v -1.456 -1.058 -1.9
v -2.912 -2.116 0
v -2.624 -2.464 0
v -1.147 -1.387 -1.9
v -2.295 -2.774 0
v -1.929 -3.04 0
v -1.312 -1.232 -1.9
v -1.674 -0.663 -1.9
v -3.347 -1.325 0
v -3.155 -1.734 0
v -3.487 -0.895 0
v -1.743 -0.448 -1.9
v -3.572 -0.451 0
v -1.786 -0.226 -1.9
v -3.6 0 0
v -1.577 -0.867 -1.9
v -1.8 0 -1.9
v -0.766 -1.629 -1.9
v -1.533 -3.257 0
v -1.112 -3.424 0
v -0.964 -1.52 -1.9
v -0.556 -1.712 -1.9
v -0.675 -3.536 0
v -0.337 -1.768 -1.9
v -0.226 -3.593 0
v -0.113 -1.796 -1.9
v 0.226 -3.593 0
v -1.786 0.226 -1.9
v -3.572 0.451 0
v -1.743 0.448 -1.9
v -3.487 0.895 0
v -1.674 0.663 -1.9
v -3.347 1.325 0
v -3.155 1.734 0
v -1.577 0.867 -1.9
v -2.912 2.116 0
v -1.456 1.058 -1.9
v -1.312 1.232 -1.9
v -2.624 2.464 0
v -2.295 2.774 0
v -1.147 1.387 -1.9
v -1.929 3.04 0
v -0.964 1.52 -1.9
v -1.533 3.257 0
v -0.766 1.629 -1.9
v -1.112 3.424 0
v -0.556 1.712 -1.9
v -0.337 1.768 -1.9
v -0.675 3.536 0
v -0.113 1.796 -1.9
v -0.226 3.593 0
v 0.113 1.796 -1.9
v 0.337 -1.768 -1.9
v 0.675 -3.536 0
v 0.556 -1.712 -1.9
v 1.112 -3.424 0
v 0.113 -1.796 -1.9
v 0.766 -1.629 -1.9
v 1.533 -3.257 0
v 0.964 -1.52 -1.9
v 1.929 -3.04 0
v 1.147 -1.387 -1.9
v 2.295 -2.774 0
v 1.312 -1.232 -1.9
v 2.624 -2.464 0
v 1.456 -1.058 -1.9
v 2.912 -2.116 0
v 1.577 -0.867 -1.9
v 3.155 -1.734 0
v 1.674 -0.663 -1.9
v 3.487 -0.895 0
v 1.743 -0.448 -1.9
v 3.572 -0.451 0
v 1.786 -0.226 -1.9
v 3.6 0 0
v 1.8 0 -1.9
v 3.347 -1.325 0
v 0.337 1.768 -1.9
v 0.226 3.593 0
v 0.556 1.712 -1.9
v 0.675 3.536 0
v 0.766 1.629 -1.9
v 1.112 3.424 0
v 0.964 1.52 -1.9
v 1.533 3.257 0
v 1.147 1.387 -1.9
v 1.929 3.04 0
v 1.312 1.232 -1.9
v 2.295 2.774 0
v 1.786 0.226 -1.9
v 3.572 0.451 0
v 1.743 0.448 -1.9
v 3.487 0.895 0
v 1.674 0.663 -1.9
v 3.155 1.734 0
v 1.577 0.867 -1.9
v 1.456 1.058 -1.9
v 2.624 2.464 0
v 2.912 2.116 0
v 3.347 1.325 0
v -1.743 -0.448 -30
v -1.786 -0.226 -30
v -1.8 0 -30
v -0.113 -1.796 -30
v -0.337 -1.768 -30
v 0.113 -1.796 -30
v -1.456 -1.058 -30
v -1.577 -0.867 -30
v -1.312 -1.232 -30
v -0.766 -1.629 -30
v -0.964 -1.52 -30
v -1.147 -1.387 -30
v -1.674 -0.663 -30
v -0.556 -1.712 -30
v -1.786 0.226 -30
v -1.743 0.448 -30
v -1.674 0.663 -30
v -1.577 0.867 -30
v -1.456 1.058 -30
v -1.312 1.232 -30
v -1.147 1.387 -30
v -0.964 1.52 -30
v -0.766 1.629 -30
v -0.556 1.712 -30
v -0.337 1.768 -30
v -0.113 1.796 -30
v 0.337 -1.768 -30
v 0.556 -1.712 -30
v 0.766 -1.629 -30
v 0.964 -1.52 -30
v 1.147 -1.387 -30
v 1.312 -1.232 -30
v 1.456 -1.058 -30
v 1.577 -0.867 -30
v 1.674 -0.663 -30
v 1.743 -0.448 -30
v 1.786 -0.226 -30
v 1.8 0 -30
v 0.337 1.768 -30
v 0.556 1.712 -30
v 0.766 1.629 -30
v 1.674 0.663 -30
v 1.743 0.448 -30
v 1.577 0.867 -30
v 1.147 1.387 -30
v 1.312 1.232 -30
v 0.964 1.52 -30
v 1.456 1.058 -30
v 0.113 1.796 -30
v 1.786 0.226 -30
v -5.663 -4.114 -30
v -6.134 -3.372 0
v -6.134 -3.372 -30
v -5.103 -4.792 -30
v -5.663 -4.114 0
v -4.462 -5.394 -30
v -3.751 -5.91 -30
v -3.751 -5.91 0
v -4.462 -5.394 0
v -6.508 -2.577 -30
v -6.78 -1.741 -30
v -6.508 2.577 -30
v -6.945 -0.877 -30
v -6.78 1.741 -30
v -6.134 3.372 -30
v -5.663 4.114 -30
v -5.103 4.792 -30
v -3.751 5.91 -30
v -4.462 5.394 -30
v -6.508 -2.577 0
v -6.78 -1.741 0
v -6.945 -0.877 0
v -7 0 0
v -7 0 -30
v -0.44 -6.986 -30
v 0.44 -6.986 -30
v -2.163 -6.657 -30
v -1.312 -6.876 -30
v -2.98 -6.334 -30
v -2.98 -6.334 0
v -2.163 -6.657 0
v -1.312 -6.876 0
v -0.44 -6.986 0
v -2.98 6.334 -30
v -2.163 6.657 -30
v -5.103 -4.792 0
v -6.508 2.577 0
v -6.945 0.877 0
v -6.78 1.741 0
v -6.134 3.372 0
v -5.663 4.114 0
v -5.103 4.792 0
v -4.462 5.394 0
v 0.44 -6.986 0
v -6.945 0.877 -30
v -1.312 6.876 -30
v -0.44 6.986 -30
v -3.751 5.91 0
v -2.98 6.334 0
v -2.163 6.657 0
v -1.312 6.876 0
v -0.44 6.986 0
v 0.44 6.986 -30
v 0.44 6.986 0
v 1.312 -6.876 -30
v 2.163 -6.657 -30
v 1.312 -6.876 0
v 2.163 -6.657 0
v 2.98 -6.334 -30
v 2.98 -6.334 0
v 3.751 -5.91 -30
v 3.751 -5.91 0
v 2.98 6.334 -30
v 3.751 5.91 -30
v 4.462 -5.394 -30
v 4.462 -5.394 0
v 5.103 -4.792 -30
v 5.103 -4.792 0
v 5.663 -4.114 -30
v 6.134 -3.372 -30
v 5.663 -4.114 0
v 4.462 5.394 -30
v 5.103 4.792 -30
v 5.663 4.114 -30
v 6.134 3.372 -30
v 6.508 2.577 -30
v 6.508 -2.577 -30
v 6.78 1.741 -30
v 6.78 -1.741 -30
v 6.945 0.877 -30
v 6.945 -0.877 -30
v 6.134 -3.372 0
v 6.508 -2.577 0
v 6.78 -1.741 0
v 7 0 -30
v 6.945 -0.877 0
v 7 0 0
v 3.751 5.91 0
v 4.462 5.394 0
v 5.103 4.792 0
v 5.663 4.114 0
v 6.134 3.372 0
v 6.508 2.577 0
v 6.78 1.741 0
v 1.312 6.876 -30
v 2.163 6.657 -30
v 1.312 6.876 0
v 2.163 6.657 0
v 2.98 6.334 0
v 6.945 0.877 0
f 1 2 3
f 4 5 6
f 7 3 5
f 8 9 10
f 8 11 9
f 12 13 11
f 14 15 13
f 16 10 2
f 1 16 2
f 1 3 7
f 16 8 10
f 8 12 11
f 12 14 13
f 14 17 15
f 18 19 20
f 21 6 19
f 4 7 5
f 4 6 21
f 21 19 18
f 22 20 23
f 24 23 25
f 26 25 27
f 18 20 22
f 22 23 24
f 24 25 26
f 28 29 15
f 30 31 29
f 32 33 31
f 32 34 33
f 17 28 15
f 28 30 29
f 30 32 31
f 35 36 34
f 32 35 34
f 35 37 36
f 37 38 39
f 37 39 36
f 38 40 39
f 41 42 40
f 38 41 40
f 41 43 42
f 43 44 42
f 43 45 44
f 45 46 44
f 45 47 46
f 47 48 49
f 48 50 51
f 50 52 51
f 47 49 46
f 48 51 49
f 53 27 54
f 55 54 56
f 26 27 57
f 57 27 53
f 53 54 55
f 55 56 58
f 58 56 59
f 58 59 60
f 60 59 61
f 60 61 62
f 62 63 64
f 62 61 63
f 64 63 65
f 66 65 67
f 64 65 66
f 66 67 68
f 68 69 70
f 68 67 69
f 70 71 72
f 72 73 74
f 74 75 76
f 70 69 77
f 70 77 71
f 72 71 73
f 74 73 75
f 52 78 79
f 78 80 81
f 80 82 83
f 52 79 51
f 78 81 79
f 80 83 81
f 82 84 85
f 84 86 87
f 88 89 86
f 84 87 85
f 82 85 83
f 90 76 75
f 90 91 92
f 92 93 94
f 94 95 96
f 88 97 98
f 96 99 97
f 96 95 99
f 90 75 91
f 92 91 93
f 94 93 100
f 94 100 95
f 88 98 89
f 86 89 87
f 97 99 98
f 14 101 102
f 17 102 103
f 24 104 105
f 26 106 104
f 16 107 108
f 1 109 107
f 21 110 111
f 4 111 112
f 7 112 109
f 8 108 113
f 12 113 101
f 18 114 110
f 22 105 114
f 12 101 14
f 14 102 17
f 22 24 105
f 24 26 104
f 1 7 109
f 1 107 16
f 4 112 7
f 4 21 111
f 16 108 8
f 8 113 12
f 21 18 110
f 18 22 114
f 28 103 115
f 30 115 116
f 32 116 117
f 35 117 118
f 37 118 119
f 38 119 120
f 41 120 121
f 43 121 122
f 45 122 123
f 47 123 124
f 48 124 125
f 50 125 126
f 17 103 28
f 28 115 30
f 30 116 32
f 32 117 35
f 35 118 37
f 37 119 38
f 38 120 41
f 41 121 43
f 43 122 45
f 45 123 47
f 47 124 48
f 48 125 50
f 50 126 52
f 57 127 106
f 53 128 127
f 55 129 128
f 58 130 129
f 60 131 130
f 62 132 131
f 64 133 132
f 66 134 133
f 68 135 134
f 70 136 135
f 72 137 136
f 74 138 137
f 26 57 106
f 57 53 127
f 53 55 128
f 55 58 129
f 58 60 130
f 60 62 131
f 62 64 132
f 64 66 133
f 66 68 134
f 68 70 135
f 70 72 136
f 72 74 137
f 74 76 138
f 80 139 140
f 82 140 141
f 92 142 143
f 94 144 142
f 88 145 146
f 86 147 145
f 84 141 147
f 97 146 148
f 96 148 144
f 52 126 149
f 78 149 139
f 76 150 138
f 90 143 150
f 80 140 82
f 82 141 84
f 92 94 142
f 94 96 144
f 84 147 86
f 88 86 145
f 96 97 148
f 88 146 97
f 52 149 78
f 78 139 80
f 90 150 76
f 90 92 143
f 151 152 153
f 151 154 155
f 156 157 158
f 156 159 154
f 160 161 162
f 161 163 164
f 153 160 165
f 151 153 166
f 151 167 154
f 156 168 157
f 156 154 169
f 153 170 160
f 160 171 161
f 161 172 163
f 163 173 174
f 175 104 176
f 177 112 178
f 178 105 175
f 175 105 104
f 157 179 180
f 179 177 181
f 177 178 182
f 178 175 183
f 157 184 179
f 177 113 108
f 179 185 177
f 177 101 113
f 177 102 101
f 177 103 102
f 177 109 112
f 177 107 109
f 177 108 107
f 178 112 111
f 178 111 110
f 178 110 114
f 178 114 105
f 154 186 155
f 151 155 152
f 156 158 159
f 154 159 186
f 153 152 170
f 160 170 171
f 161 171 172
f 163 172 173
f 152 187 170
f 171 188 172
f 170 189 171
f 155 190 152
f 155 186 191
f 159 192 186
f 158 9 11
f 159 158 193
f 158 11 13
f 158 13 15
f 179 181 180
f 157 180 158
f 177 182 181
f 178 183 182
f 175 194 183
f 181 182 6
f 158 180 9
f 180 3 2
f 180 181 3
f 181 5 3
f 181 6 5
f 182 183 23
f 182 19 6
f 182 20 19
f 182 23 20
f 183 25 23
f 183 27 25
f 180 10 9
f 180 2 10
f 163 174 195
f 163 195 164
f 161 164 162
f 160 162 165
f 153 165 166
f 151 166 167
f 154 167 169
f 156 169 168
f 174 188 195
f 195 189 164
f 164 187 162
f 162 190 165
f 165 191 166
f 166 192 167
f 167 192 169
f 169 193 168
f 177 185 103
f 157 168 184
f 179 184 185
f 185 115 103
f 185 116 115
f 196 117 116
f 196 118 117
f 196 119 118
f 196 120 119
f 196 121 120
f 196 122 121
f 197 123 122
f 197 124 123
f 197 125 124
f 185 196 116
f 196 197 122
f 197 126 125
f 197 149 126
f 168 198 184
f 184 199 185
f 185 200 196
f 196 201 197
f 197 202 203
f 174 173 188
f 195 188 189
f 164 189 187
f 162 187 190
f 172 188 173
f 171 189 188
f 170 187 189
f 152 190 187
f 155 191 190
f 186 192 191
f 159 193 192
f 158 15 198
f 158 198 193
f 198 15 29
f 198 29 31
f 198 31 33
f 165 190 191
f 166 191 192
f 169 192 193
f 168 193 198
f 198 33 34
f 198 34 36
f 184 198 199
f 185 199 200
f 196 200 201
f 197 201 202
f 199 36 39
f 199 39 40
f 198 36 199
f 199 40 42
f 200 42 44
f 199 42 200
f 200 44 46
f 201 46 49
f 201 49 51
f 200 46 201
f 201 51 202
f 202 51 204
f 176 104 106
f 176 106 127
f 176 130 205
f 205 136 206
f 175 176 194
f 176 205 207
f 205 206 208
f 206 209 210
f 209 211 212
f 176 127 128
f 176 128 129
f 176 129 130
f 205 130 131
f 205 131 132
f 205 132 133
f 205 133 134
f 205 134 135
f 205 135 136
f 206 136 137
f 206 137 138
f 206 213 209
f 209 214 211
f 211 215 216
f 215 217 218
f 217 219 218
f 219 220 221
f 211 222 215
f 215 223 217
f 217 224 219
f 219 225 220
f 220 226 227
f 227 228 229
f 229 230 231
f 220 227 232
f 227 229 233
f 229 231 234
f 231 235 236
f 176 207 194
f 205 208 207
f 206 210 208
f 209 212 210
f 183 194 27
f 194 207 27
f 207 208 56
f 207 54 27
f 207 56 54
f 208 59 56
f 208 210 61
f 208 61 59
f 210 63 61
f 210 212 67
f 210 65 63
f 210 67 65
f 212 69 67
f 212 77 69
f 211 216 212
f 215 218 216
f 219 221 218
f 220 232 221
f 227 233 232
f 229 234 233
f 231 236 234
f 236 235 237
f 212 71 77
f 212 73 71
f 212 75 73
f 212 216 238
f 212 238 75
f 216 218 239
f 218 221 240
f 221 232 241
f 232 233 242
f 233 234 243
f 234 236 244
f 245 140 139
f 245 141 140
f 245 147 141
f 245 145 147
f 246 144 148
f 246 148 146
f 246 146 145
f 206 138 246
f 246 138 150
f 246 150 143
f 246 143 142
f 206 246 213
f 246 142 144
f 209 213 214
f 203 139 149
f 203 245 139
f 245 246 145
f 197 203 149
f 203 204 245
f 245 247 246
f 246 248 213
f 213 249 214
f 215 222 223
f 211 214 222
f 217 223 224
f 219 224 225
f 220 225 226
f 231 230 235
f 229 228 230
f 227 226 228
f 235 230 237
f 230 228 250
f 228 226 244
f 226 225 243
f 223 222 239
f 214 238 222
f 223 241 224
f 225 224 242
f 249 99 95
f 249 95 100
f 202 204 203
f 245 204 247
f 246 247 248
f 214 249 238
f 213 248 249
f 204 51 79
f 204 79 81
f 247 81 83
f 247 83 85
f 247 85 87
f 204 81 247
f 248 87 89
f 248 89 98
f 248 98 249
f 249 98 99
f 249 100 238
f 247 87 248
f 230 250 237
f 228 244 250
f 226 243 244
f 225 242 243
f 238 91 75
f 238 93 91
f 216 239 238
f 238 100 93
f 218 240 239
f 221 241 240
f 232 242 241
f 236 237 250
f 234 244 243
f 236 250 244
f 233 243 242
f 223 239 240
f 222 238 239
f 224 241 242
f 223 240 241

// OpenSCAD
$fn = 50;

difference() {
	union() {
		translate(v = [0, 0, -30.0]) {
			cylinder(h = 30, r = 7.0);
		}
	}
	union() {
		translate(v = [0, 0, 0]) {
			rotate(a = [0, 0, 0]) {
				difference() {
					union() {
						translate(v = [0, 0, -33.0]) {
							cylinder(h = 33, r = 1.5);
						}
						translate(v = [0, 0, -1.9]) {
							cylinder(h = 1.9, r1 = 1.8, r2 = 3.6);
						}
						translate(v = [0, 0, -33.0]) {
							cylinder(h = 33, r = 1.8);
						}
						translate(v = [0, 0, -33.0]) {
							cylinder(h = 33, r = 1.5);
						}
					}
					union();
				}
			}
		}
	}
}
